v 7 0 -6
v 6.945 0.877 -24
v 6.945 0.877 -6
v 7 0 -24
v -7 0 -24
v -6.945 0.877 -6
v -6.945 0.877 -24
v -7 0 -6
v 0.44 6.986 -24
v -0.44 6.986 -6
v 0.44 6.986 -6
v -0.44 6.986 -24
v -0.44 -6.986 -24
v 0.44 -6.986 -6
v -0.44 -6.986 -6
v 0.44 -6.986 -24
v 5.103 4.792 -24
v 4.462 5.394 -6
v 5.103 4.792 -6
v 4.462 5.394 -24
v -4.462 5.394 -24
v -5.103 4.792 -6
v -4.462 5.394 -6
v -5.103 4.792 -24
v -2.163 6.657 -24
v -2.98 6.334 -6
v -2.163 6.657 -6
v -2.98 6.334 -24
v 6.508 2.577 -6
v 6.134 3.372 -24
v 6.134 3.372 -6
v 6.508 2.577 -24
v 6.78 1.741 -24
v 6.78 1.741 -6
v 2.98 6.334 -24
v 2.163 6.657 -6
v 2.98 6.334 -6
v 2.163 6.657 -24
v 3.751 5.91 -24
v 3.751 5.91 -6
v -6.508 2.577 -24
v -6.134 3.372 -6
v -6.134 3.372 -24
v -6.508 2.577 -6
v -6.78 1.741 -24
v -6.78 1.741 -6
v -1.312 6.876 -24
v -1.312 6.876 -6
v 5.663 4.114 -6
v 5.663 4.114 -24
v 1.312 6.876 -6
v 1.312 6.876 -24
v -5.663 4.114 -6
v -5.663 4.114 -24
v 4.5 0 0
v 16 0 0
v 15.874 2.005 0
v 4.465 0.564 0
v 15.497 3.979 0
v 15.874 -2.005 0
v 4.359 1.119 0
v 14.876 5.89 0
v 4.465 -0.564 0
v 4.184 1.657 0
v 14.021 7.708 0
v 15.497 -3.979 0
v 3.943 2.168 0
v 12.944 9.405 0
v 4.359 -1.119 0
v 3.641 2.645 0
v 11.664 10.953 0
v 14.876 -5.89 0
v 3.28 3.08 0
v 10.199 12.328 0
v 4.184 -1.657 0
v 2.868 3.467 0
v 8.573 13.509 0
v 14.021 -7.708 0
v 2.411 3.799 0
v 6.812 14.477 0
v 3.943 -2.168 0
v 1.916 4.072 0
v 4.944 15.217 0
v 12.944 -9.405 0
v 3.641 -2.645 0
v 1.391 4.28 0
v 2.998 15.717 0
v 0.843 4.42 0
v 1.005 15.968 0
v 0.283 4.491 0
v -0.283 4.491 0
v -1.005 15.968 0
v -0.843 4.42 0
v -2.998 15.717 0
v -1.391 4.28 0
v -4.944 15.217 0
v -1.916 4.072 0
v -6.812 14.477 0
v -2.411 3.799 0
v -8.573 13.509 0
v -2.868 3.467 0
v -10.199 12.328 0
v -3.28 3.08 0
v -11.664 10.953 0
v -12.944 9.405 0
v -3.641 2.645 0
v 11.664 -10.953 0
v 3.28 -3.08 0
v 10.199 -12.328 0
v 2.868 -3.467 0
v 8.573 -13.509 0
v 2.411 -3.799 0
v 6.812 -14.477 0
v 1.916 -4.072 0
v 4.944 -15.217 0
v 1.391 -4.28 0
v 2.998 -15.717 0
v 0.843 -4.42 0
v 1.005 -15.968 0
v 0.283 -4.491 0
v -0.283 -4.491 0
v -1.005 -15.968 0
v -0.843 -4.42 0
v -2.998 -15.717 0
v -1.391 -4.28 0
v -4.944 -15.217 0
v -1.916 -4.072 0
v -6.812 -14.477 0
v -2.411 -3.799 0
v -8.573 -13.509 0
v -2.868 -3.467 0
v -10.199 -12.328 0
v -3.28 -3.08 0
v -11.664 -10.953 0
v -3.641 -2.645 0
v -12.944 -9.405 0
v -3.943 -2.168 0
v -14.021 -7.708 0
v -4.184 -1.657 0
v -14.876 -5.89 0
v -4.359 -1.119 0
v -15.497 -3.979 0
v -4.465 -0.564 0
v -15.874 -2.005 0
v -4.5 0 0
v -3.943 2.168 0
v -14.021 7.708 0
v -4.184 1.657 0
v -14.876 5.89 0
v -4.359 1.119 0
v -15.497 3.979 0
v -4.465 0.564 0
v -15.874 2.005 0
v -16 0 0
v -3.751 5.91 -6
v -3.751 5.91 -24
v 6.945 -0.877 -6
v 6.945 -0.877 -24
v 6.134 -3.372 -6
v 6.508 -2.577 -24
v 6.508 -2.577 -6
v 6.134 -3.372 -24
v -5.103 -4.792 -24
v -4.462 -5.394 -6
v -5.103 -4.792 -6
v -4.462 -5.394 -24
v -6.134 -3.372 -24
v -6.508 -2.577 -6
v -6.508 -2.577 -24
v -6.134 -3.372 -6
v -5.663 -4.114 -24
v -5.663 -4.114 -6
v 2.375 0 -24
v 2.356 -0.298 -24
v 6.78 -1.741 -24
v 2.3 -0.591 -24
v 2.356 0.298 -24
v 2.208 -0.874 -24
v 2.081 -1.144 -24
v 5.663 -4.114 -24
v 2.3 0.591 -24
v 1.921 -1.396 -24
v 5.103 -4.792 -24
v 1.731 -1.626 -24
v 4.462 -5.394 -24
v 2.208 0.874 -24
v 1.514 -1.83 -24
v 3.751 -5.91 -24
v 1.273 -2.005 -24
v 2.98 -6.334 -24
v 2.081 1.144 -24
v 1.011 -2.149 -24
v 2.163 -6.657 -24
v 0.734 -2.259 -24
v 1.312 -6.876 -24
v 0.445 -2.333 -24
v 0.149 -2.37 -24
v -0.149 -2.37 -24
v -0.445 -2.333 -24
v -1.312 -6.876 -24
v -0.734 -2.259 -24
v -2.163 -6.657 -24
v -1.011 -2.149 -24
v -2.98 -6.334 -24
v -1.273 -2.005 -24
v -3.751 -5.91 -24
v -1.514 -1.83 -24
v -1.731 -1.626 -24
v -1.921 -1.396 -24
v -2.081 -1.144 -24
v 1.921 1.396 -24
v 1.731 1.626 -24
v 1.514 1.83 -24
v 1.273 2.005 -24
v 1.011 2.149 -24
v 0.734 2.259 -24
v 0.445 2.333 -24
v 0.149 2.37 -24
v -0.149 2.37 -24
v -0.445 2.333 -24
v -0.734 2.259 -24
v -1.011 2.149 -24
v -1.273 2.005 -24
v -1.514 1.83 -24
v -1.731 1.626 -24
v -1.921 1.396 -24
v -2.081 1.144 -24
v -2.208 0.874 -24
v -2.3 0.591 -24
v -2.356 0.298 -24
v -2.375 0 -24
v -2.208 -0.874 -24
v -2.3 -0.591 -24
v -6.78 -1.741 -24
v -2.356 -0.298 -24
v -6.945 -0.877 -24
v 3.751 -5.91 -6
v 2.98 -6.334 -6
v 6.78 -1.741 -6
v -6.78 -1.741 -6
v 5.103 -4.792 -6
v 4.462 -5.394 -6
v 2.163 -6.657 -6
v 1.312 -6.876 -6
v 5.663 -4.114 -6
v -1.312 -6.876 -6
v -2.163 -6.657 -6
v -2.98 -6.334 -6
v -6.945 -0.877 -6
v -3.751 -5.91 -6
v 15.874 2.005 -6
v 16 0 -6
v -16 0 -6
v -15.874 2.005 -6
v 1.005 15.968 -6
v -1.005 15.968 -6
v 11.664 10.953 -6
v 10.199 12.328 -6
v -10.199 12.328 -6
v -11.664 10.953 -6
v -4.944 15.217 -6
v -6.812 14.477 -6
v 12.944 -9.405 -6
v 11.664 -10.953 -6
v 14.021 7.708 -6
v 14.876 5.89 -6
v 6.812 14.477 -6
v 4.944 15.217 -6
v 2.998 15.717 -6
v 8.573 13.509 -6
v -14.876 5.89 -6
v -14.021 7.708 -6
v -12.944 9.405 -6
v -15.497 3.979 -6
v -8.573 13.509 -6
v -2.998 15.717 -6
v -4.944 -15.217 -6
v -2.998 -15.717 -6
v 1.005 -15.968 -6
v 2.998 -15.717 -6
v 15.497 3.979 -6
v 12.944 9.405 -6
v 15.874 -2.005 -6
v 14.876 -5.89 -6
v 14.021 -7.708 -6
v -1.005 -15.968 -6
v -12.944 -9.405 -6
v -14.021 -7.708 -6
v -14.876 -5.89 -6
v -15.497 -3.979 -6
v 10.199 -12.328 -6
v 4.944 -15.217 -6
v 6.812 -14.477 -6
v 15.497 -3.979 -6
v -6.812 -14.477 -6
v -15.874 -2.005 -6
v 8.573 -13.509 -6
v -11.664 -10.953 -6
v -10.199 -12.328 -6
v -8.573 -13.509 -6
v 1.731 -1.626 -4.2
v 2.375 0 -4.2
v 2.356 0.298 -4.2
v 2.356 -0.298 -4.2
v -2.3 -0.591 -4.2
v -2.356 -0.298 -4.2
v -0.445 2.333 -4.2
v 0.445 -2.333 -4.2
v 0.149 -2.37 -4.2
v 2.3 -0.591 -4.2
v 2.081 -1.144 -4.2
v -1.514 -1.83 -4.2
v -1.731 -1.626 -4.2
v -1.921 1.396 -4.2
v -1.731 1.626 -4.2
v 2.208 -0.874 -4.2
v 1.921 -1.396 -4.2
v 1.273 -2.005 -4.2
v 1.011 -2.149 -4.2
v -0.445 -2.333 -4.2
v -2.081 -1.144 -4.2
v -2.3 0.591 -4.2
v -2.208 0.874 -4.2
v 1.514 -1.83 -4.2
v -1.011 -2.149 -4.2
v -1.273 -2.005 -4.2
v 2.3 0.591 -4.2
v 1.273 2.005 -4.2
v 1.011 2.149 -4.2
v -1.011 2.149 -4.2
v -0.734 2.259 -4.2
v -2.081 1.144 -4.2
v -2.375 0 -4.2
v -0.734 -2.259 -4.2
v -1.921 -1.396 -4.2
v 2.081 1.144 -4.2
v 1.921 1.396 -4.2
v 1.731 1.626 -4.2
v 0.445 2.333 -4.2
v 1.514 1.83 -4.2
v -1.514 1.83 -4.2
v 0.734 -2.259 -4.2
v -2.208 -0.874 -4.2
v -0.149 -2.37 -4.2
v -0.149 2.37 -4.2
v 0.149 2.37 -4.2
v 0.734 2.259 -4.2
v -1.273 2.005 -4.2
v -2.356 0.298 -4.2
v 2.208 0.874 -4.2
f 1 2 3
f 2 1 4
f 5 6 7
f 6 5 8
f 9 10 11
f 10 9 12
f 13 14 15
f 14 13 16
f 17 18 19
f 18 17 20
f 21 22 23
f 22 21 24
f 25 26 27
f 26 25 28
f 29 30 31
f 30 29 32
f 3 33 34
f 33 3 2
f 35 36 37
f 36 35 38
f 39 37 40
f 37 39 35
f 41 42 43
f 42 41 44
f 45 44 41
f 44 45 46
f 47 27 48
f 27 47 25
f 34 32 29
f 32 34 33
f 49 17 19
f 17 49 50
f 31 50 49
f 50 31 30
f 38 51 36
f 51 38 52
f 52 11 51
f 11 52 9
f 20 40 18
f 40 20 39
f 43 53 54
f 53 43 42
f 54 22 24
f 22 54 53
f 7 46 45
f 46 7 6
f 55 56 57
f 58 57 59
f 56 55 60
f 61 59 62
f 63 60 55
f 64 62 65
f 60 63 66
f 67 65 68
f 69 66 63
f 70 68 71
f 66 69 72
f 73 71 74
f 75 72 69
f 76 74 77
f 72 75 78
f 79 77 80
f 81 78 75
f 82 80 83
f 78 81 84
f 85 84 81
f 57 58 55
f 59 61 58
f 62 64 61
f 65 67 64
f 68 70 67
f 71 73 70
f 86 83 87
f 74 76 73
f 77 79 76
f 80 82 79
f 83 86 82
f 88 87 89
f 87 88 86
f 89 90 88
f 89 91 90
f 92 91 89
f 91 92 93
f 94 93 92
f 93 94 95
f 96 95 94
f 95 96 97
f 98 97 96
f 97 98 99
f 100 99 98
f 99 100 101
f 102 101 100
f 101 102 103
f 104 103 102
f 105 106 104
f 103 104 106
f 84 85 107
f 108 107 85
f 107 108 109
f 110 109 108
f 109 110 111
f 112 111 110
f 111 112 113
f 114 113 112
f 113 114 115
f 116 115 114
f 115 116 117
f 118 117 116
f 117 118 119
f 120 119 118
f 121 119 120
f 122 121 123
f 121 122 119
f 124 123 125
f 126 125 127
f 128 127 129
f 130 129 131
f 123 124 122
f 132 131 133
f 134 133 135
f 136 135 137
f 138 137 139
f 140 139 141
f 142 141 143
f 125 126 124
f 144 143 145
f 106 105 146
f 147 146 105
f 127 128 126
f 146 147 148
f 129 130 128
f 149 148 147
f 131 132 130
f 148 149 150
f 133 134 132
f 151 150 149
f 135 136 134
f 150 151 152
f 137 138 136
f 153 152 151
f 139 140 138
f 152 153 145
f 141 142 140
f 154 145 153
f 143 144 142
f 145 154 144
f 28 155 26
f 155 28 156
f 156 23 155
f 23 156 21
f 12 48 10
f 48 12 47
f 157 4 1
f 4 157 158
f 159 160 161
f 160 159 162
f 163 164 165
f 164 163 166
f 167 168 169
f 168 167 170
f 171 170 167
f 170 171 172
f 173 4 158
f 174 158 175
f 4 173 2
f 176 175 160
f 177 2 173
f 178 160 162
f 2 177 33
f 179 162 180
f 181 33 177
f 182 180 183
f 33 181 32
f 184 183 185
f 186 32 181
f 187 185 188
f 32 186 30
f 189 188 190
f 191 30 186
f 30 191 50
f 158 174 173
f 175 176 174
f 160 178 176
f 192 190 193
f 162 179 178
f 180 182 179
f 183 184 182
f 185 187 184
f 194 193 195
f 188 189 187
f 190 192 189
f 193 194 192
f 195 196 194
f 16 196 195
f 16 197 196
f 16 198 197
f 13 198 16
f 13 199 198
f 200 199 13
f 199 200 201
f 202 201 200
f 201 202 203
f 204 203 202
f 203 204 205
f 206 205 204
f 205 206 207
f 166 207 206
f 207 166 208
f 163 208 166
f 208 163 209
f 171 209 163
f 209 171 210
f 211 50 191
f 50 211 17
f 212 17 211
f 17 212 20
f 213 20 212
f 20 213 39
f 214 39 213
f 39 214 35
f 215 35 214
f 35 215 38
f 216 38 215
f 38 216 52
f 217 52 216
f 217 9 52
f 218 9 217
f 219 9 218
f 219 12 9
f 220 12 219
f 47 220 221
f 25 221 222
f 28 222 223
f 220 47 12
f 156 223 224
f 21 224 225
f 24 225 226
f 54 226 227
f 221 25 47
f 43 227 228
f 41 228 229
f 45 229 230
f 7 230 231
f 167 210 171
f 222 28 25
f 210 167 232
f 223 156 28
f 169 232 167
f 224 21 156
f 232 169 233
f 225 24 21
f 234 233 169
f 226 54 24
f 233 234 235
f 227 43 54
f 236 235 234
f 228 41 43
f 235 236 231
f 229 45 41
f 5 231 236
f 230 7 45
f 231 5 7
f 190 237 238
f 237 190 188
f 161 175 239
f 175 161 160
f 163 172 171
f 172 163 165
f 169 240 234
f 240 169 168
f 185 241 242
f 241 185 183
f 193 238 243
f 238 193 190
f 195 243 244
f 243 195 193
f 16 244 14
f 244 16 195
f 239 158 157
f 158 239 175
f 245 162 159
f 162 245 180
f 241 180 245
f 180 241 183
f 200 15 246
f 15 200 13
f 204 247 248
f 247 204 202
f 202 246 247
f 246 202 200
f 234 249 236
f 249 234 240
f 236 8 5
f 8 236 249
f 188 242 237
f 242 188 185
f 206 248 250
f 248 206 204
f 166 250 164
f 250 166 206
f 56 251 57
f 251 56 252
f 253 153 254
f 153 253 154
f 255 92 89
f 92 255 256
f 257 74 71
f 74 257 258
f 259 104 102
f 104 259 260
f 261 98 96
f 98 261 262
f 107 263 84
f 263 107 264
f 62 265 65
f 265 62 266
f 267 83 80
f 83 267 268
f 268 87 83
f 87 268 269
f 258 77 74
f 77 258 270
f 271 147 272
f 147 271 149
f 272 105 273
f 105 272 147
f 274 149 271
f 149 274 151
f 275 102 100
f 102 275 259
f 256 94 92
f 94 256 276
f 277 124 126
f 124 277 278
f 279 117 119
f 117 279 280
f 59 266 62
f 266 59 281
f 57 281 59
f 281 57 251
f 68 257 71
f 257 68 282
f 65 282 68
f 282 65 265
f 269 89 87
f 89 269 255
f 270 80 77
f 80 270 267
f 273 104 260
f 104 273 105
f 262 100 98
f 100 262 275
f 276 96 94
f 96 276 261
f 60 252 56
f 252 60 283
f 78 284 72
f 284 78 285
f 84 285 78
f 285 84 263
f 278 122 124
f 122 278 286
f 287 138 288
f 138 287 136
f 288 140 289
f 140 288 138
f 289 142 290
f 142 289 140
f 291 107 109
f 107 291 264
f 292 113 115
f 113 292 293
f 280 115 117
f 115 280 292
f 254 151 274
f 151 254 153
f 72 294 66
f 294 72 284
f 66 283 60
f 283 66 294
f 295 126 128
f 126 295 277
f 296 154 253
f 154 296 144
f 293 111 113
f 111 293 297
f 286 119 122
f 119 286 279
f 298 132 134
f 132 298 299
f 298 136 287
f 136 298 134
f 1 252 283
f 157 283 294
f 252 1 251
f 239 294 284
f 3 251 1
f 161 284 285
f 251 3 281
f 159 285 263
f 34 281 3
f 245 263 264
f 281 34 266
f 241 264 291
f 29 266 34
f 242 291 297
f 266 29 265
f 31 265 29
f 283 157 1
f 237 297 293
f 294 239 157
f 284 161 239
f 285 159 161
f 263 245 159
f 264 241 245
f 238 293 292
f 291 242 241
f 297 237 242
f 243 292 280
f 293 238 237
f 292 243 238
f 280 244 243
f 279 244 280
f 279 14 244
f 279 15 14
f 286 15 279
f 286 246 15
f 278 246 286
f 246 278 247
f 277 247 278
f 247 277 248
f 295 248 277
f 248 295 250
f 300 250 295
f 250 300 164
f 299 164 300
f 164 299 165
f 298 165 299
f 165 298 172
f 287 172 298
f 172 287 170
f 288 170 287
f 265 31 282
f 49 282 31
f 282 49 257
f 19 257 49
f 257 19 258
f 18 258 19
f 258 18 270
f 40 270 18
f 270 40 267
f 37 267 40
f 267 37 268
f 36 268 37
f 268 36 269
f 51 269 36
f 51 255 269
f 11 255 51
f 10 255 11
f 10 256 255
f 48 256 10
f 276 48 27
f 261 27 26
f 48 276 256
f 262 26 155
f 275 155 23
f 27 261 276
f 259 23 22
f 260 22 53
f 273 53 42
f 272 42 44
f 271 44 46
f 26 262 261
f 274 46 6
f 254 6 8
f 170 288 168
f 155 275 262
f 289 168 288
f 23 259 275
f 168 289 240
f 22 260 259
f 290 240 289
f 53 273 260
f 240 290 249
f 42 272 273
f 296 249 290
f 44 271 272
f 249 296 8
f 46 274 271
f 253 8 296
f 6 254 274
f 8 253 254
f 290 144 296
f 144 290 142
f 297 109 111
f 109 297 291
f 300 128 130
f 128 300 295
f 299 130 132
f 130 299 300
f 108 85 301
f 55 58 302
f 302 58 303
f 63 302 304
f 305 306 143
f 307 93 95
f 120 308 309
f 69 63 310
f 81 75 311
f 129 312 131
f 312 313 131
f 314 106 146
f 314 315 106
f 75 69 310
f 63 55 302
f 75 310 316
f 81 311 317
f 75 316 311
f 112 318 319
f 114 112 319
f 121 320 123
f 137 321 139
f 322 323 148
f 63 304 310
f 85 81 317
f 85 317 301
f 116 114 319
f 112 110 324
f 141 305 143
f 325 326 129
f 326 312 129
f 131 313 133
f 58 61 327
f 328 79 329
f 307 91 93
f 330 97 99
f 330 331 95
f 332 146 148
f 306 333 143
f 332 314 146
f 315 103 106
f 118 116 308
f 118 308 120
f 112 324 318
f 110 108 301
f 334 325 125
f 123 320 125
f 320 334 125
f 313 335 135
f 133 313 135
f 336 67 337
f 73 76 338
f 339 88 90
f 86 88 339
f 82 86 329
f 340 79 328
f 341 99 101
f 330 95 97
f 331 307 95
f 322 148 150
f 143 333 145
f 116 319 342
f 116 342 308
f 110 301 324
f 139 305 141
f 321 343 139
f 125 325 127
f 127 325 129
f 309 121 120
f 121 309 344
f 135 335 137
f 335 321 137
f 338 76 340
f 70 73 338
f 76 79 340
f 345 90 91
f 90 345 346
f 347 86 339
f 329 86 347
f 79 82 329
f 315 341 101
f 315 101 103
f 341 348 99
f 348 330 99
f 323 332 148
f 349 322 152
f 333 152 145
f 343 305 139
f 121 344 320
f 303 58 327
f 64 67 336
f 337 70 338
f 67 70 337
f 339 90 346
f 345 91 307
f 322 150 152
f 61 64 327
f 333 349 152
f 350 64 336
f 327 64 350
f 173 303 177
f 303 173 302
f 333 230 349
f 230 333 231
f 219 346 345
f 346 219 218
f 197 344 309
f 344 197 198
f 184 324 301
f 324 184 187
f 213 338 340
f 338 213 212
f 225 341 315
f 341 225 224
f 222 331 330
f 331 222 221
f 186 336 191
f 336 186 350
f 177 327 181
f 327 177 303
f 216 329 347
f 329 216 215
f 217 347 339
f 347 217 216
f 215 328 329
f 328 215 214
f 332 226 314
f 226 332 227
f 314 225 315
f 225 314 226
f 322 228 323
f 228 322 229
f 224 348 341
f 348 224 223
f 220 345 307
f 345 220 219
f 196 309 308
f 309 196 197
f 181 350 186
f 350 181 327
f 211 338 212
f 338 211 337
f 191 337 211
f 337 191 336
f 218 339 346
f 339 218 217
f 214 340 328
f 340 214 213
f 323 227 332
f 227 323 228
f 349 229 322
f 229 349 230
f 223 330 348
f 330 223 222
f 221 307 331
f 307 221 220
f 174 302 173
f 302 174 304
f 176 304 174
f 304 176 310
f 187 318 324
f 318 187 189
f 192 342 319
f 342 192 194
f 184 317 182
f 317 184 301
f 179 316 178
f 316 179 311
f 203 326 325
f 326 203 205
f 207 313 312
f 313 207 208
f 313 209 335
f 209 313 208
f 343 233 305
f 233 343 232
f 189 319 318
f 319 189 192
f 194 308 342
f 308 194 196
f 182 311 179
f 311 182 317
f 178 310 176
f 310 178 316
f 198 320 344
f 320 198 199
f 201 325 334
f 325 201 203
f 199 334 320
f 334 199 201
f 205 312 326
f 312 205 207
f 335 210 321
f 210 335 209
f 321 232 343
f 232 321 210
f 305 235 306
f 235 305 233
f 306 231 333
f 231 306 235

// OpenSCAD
$fn = 50;


difference() {
	union() {
		translate(v = [0, 0, -24.0000000000]) {
			cylinder(h = 24, r = 7.0000000000);
		}
		translate(v = [0, 0, -6.0000000000]) {
			cylinder(h = 6, r = 16.0000000000);
		}
	}
	union() {
		translate(v = [0, 0, 0]) {
			rotate(a = [0, 0, 0]) {
				difference() {
					union() {
						#translate(v = [0, 0, -24.0000000000]) {
							cylinder(h = 24, r = 2.2500000000);
						}
						#translate(v = [0, 0, -4.2000000000]) {
							cylinder(h = 4.2000000000, r1 = 2.3750000000, r2 = 4.5000000000);
						}
						#translate(v = [0, 0, -24.0000000000]) {
							cylinder(h = 24, r = 2.3750000000);
						}
						#translate(v = [0, 0, -24.0000000000]) {
							cylinder(h = 24, r = 2.2500000000);
						}
					}
					union();
				}
			}
		}
	}
}
